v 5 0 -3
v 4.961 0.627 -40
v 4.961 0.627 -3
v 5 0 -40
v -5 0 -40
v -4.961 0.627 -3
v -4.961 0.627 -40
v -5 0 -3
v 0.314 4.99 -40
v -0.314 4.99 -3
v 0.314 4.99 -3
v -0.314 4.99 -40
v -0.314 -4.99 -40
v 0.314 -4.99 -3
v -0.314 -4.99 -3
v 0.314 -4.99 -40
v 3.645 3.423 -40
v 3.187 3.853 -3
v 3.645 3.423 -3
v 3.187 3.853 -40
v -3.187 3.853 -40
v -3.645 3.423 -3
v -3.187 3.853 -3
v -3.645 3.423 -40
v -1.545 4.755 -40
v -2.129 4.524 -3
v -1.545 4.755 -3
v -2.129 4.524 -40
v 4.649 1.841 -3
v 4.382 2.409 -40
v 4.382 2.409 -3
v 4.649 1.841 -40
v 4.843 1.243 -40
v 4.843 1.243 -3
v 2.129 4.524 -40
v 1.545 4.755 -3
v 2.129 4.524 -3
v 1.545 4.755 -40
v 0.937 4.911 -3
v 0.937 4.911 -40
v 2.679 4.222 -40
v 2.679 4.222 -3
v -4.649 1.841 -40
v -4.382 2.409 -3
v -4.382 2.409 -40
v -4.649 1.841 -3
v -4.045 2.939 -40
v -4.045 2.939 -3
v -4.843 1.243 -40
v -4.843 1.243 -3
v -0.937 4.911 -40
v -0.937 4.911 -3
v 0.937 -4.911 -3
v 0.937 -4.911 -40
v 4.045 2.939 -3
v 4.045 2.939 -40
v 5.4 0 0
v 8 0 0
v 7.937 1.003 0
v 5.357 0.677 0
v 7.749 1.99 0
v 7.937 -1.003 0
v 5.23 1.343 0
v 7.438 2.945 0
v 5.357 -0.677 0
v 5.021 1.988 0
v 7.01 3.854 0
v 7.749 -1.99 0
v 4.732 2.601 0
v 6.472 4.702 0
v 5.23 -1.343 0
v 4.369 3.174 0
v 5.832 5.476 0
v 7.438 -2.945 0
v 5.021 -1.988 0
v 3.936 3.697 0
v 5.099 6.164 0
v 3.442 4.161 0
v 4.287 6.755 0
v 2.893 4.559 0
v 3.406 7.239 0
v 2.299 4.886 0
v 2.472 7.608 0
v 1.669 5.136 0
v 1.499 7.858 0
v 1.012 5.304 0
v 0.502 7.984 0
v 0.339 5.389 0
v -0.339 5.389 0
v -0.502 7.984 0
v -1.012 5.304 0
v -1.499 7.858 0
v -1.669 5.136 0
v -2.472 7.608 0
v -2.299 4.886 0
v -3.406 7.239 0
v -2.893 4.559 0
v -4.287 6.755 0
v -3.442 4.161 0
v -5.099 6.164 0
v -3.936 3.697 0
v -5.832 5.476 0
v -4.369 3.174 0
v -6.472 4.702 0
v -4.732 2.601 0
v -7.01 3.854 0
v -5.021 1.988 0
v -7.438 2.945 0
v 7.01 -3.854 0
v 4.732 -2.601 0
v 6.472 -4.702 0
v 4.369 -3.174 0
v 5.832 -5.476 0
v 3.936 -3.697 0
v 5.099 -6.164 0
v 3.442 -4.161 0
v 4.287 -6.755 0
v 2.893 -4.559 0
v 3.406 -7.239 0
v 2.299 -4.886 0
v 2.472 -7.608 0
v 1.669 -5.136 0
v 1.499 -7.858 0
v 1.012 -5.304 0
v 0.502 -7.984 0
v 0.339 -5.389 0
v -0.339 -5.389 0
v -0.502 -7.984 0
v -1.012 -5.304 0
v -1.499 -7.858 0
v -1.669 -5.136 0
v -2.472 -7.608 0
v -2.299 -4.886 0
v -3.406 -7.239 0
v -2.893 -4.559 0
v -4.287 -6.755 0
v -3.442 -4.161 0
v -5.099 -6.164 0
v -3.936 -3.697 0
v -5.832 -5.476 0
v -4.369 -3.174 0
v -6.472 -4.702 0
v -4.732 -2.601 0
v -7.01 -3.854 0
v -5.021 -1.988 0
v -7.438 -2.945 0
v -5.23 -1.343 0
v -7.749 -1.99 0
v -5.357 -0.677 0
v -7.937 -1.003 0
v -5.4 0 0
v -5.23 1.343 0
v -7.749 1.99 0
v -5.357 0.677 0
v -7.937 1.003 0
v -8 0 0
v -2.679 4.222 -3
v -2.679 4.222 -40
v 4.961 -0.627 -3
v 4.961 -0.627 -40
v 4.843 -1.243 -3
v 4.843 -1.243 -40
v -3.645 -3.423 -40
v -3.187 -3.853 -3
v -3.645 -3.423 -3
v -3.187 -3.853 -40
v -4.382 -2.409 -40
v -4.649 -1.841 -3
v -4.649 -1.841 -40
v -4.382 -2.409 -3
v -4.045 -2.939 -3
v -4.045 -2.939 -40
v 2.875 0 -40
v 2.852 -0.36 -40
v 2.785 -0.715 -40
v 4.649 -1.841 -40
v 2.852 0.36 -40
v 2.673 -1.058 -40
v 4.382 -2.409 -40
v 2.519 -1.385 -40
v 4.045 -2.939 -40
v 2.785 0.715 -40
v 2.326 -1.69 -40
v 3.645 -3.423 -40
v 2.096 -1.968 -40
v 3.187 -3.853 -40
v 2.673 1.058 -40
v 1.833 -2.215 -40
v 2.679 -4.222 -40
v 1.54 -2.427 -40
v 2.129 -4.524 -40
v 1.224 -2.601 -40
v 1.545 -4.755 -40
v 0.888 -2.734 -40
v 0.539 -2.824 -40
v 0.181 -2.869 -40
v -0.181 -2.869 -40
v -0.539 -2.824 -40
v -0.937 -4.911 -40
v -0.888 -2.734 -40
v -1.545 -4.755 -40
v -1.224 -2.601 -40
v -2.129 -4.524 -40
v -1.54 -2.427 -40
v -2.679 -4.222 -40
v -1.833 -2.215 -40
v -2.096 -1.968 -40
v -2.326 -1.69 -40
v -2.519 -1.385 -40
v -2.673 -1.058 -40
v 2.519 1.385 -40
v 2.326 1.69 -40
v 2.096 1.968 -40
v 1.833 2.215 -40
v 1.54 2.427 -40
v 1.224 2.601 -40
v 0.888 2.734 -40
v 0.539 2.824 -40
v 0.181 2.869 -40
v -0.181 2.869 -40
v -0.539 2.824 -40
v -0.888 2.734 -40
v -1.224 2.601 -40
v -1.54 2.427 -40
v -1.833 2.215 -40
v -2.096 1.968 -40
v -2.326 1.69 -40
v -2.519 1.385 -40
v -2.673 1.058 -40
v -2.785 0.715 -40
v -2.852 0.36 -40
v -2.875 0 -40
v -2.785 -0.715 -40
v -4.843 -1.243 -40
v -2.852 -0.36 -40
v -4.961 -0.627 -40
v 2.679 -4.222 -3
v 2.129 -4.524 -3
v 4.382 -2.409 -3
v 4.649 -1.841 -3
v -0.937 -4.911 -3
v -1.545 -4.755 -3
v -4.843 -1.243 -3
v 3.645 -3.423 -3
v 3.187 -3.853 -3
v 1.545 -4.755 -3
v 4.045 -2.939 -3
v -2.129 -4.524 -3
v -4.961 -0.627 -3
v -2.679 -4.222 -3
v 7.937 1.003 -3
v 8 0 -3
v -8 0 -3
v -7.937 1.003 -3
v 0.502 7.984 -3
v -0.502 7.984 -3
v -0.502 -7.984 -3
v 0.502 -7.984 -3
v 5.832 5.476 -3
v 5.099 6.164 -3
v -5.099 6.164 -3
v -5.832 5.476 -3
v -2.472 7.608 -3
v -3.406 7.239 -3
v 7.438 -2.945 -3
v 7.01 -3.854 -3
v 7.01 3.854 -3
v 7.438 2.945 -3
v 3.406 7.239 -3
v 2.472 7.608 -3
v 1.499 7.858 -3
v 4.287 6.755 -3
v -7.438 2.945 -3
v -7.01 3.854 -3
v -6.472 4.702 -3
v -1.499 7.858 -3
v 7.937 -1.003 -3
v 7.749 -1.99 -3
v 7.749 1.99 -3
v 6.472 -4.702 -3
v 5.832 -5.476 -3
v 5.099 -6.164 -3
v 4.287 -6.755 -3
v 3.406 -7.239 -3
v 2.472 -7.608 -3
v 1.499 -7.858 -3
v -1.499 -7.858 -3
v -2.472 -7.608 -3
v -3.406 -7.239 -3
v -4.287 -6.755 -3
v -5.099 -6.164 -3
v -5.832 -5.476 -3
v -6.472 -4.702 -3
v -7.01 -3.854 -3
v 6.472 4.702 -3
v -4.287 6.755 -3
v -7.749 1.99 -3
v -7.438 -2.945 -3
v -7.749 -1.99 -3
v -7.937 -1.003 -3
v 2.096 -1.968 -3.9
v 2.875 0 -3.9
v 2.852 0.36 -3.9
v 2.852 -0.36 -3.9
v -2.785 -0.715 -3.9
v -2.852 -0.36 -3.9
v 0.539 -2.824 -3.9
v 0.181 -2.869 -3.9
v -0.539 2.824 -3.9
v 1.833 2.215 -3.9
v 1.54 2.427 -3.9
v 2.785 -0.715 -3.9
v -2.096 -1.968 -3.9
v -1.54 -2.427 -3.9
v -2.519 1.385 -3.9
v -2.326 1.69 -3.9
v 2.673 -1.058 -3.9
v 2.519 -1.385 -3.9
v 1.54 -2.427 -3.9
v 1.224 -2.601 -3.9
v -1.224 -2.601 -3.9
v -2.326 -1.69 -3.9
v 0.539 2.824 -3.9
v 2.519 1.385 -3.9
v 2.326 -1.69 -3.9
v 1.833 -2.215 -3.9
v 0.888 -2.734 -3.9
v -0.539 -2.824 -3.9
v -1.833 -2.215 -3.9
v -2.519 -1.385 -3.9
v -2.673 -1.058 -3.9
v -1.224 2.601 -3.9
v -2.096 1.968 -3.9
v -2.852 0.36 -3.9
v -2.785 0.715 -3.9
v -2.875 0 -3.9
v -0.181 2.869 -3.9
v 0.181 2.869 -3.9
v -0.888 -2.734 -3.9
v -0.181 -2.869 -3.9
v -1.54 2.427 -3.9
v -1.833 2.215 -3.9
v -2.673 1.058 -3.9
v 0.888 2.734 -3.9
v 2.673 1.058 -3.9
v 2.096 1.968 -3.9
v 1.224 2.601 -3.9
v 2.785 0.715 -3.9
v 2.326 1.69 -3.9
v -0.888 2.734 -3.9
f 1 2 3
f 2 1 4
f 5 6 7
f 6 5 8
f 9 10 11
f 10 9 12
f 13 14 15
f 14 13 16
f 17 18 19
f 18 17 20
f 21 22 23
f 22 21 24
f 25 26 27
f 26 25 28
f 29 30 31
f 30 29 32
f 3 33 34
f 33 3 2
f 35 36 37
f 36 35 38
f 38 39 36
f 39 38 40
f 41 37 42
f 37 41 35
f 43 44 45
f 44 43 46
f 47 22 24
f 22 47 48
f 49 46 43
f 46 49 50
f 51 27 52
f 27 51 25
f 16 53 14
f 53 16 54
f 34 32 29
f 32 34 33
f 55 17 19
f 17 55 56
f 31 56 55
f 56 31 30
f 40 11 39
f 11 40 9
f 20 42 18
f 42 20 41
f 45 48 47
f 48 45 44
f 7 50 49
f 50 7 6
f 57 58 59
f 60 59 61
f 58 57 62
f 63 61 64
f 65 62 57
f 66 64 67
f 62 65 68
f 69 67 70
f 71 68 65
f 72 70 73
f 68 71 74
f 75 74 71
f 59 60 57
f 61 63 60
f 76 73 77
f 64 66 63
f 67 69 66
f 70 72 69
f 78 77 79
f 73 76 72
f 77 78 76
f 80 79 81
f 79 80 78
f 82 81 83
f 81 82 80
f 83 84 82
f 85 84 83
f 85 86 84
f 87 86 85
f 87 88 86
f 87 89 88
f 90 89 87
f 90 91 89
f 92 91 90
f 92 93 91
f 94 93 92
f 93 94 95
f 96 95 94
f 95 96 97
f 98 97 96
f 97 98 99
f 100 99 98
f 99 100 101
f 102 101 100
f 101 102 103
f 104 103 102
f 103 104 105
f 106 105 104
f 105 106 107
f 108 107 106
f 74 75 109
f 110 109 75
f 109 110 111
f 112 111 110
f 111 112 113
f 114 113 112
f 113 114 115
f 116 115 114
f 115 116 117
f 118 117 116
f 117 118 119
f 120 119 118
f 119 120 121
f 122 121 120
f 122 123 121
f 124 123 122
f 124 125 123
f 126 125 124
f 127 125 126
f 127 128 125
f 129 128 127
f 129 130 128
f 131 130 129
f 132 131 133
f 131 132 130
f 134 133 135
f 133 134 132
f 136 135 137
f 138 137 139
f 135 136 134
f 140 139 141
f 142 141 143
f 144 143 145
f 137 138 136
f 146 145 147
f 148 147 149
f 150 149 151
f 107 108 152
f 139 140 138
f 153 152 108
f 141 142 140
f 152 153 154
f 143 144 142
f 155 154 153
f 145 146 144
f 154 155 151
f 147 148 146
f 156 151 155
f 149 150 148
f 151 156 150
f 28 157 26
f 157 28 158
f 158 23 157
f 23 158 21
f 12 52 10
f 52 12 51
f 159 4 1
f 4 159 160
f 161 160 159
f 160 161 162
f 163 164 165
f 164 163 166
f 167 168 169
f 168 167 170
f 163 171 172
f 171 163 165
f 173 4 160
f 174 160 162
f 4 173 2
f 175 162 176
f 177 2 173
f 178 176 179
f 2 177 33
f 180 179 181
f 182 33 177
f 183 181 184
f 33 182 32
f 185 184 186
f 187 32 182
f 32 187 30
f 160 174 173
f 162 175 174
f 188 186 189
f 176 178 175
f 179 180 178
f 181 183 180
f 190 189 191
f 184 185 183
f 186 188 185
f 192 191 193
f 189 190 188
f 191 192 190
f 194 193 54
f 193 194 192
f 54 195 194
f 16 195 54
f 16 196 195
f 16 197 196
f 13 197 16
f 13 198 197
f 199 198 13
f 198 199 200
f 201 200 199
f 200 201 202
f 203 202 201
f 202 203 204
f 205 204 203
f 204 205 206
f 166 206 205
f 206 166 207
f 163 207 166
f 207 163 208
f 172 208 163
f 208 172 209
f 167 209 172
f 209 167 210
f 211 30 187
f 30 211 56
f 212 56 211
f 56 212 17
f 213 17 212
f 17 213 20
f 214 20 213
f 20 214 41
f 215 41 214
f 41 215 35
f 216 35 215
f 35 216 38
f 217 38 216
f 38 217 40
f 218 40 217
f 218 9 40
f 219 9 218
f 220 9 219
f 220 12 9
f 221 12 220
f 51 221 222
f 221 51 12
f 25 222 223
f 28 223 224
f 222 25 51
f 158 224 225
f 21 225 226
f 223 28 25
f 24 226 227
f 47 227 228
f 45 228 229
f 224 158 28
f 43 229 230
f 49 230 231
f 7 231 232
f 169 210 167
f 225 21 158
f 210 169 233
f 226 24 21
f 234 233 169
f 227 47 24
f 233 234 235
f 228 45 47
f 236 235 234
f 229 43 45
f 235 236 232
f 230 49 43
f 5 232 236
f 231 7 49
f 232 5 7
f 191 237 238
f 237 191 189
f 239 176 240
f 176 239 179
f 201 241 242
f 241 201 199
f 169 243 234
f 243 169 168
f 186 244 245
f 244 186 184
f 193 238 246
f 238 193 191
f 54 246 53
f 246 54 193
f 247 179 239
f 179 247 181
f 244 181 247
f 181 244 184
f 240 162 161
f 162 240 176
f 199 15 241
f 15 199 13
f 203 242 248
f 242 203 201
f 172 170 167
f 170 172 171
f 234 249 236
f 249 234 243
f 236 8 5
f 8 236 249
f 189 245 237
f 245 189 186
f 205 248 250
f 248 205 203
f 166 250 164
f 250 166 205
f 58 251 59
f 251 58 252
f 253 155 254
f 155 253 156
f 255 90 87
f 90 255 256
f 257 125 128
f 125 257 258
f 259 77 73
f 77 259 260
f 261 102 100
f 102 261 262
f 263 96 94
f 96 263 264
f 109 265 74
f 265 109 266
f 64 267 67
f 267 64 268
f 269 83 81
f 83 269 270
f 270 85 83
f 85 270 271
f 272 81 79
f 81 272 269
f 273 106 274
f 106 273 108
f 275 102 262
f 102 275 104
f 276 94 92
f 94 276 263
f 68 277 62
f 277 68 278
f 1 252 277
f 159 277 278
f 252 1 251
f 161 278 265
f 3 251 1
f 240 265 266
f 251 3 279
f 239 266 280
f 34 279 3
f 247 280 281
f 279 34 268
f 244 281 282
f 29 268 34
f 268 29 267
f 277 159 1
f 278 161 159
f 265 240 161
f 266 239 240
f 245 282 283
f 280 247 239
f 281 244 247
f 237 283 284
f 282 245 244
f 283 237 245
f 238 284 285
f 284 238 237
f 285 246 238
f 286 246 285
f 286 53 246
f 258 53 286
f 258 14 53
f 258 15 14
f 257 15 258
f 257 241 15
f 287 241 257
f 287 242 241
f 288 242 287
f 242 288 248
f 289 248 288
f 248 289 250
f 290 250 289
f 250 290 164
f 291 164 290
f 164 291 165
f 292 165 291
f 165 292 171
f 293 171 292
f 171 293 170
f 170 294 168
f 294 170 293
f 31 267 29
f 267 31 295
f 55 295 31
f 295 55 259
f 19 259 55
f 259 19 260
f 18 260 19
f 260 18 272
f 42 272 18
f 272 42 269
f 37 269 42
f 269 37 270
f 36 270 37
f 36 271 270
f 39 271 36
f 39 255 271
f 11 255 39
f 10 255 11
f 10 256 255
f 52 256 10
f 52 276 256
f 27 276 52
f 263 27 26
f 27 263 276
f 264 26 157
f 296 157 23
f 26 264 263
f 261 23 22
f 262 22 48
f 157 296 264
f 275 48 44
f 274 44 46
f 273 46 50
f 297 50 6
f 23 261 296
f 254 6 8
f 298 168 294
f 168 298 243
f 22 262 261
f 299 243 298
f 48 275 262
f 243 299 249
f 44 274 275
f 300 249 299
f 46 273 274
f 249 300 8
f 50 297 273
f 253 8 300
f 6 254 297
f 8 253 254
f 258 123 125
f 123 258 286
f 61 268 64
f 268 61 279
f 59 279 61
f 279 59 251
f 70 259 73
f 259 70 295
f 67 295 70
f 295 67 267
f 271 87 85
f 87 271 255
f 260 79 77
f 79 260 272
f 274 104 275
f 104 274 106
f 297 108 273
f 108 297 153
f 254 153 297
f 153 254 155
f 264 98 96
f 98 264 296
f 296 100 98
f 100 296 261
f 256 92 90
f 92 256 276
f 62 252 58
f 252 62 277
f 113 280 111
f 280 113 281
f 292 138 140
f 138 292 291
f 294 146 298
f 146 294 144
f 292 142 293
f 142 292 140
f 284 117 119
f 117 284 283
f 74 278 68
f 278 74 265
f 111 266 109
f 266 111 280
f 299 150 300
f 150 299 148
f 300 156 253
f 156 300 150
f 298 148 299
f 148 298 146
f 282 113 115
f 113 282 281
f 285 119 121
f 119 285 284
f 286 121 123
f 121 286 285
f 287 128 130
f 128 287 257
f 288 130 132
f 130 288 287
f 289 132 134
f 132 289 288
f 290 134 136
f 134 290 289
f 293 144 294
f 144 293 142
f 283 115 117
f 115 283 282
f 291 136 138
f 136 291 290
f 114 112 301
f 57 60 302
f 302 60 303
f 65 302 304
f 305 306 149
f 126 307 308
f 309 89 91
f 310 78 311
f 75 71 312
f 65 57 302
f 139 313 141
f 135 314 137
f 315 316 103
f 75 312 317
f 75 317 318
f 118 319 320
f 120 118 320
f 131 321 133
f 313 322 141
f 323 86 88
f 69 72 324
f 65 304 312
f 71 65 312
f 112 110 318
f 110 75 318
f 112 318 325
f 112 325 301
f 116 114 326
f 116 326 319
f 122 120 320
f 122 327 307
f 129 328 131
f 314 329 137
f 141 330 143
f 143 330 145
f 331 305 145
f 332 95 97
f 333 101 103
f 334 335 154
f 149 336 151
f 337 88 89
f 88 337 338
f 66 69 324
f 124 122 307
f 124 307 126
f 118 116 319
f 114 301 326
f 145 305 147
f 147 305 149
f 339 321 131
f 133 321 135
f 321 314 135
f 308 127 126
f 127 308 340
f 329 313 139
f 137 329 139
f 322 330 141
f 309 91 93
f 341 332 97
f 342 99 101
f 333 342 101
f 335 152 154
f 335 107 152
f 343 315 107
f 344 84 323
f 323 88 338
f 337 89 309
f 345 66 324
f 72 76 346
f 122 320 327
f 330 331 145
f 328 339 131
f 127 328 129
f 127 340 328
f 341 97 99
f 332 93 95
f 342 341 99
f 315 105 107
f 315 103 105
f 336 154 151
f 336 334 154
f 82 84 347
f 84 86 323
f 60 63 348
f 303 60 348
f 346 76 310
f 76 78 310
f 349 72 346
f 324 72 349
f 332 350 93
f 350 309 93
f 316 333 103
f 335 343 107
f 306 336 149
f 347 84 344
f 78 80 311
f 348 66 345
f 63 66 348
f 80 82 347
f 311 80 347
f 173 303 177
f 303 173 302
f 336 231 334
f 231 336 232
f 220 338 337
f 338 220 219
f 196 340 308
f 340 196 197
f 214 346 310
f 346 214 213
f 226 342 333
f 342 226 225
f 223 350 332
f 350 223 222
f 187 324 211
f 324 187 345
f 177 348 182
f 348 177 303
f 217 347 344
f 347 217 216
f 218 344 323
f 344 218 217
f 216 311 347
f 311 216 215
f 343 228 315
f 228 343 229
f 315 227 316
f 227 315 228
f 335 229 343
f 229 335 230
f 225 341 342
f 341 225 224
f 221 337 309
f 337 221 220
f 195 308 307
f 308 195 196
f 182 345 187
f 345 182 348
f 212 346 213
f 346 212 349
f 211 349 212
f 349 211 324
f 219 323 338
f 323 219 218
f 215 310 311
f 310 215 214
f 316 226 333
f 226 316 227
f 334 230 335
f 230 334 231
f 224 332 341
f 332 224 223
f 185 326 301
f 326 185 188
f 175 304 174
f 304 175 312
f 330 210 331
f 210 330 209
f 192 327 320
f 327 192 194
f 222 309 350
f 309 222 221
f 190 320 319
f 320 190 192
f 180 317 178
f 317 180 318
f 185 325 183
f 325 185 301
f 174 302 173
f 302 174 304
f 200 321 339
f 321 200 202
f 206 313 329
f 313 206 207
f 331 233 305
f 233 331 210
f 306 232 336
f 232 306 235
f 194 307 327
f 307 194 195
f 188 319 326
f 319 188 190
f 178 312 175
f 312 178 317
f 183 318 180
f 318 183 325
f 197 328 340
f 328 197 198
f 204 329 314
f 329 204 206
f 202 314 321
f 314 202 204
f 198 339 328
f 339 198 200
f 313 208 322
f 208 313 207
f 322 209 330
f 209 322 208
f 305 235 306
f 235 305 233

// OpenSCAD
$fn = 50;


difference() {
	union() {
		translate(v = [0, 0, -40.0000000000]) {
			cylinder(h = 40, r = 5.0000000000);
		}
		translate(v = [0, 0, -3.0000000000]) {
			cylinder(h = 3, r = 8.0000000000);
		}
	}
	union() {
		translate(v = [0, 0, 0]) {
			rotate(a = [0, 0, 0]) {
				difference() {
					union() {
						#translate(v = [0, 0, -40.0000000000]) {
							cylinder(h = 40, r = 2.6000000000);
						}
						#translate(v = [0, 0, -3.9000000000]) {
							cylinder(h = 3.9000000000, r = 5.0000000000, r1 = 2.8750000000, r2 = 5.4000000000);
						}
						#translate(v = [0, 0, -40.0000000000]) {
							cylinder(h = 40, r = 2.8750000000);
						}
						#translate(v = [0, 0, -40.0000000000]) {
							cylinder(h = 40, r = 2.6000000000);
						}
					}
					union();
				}
			}
		}
	}
}
